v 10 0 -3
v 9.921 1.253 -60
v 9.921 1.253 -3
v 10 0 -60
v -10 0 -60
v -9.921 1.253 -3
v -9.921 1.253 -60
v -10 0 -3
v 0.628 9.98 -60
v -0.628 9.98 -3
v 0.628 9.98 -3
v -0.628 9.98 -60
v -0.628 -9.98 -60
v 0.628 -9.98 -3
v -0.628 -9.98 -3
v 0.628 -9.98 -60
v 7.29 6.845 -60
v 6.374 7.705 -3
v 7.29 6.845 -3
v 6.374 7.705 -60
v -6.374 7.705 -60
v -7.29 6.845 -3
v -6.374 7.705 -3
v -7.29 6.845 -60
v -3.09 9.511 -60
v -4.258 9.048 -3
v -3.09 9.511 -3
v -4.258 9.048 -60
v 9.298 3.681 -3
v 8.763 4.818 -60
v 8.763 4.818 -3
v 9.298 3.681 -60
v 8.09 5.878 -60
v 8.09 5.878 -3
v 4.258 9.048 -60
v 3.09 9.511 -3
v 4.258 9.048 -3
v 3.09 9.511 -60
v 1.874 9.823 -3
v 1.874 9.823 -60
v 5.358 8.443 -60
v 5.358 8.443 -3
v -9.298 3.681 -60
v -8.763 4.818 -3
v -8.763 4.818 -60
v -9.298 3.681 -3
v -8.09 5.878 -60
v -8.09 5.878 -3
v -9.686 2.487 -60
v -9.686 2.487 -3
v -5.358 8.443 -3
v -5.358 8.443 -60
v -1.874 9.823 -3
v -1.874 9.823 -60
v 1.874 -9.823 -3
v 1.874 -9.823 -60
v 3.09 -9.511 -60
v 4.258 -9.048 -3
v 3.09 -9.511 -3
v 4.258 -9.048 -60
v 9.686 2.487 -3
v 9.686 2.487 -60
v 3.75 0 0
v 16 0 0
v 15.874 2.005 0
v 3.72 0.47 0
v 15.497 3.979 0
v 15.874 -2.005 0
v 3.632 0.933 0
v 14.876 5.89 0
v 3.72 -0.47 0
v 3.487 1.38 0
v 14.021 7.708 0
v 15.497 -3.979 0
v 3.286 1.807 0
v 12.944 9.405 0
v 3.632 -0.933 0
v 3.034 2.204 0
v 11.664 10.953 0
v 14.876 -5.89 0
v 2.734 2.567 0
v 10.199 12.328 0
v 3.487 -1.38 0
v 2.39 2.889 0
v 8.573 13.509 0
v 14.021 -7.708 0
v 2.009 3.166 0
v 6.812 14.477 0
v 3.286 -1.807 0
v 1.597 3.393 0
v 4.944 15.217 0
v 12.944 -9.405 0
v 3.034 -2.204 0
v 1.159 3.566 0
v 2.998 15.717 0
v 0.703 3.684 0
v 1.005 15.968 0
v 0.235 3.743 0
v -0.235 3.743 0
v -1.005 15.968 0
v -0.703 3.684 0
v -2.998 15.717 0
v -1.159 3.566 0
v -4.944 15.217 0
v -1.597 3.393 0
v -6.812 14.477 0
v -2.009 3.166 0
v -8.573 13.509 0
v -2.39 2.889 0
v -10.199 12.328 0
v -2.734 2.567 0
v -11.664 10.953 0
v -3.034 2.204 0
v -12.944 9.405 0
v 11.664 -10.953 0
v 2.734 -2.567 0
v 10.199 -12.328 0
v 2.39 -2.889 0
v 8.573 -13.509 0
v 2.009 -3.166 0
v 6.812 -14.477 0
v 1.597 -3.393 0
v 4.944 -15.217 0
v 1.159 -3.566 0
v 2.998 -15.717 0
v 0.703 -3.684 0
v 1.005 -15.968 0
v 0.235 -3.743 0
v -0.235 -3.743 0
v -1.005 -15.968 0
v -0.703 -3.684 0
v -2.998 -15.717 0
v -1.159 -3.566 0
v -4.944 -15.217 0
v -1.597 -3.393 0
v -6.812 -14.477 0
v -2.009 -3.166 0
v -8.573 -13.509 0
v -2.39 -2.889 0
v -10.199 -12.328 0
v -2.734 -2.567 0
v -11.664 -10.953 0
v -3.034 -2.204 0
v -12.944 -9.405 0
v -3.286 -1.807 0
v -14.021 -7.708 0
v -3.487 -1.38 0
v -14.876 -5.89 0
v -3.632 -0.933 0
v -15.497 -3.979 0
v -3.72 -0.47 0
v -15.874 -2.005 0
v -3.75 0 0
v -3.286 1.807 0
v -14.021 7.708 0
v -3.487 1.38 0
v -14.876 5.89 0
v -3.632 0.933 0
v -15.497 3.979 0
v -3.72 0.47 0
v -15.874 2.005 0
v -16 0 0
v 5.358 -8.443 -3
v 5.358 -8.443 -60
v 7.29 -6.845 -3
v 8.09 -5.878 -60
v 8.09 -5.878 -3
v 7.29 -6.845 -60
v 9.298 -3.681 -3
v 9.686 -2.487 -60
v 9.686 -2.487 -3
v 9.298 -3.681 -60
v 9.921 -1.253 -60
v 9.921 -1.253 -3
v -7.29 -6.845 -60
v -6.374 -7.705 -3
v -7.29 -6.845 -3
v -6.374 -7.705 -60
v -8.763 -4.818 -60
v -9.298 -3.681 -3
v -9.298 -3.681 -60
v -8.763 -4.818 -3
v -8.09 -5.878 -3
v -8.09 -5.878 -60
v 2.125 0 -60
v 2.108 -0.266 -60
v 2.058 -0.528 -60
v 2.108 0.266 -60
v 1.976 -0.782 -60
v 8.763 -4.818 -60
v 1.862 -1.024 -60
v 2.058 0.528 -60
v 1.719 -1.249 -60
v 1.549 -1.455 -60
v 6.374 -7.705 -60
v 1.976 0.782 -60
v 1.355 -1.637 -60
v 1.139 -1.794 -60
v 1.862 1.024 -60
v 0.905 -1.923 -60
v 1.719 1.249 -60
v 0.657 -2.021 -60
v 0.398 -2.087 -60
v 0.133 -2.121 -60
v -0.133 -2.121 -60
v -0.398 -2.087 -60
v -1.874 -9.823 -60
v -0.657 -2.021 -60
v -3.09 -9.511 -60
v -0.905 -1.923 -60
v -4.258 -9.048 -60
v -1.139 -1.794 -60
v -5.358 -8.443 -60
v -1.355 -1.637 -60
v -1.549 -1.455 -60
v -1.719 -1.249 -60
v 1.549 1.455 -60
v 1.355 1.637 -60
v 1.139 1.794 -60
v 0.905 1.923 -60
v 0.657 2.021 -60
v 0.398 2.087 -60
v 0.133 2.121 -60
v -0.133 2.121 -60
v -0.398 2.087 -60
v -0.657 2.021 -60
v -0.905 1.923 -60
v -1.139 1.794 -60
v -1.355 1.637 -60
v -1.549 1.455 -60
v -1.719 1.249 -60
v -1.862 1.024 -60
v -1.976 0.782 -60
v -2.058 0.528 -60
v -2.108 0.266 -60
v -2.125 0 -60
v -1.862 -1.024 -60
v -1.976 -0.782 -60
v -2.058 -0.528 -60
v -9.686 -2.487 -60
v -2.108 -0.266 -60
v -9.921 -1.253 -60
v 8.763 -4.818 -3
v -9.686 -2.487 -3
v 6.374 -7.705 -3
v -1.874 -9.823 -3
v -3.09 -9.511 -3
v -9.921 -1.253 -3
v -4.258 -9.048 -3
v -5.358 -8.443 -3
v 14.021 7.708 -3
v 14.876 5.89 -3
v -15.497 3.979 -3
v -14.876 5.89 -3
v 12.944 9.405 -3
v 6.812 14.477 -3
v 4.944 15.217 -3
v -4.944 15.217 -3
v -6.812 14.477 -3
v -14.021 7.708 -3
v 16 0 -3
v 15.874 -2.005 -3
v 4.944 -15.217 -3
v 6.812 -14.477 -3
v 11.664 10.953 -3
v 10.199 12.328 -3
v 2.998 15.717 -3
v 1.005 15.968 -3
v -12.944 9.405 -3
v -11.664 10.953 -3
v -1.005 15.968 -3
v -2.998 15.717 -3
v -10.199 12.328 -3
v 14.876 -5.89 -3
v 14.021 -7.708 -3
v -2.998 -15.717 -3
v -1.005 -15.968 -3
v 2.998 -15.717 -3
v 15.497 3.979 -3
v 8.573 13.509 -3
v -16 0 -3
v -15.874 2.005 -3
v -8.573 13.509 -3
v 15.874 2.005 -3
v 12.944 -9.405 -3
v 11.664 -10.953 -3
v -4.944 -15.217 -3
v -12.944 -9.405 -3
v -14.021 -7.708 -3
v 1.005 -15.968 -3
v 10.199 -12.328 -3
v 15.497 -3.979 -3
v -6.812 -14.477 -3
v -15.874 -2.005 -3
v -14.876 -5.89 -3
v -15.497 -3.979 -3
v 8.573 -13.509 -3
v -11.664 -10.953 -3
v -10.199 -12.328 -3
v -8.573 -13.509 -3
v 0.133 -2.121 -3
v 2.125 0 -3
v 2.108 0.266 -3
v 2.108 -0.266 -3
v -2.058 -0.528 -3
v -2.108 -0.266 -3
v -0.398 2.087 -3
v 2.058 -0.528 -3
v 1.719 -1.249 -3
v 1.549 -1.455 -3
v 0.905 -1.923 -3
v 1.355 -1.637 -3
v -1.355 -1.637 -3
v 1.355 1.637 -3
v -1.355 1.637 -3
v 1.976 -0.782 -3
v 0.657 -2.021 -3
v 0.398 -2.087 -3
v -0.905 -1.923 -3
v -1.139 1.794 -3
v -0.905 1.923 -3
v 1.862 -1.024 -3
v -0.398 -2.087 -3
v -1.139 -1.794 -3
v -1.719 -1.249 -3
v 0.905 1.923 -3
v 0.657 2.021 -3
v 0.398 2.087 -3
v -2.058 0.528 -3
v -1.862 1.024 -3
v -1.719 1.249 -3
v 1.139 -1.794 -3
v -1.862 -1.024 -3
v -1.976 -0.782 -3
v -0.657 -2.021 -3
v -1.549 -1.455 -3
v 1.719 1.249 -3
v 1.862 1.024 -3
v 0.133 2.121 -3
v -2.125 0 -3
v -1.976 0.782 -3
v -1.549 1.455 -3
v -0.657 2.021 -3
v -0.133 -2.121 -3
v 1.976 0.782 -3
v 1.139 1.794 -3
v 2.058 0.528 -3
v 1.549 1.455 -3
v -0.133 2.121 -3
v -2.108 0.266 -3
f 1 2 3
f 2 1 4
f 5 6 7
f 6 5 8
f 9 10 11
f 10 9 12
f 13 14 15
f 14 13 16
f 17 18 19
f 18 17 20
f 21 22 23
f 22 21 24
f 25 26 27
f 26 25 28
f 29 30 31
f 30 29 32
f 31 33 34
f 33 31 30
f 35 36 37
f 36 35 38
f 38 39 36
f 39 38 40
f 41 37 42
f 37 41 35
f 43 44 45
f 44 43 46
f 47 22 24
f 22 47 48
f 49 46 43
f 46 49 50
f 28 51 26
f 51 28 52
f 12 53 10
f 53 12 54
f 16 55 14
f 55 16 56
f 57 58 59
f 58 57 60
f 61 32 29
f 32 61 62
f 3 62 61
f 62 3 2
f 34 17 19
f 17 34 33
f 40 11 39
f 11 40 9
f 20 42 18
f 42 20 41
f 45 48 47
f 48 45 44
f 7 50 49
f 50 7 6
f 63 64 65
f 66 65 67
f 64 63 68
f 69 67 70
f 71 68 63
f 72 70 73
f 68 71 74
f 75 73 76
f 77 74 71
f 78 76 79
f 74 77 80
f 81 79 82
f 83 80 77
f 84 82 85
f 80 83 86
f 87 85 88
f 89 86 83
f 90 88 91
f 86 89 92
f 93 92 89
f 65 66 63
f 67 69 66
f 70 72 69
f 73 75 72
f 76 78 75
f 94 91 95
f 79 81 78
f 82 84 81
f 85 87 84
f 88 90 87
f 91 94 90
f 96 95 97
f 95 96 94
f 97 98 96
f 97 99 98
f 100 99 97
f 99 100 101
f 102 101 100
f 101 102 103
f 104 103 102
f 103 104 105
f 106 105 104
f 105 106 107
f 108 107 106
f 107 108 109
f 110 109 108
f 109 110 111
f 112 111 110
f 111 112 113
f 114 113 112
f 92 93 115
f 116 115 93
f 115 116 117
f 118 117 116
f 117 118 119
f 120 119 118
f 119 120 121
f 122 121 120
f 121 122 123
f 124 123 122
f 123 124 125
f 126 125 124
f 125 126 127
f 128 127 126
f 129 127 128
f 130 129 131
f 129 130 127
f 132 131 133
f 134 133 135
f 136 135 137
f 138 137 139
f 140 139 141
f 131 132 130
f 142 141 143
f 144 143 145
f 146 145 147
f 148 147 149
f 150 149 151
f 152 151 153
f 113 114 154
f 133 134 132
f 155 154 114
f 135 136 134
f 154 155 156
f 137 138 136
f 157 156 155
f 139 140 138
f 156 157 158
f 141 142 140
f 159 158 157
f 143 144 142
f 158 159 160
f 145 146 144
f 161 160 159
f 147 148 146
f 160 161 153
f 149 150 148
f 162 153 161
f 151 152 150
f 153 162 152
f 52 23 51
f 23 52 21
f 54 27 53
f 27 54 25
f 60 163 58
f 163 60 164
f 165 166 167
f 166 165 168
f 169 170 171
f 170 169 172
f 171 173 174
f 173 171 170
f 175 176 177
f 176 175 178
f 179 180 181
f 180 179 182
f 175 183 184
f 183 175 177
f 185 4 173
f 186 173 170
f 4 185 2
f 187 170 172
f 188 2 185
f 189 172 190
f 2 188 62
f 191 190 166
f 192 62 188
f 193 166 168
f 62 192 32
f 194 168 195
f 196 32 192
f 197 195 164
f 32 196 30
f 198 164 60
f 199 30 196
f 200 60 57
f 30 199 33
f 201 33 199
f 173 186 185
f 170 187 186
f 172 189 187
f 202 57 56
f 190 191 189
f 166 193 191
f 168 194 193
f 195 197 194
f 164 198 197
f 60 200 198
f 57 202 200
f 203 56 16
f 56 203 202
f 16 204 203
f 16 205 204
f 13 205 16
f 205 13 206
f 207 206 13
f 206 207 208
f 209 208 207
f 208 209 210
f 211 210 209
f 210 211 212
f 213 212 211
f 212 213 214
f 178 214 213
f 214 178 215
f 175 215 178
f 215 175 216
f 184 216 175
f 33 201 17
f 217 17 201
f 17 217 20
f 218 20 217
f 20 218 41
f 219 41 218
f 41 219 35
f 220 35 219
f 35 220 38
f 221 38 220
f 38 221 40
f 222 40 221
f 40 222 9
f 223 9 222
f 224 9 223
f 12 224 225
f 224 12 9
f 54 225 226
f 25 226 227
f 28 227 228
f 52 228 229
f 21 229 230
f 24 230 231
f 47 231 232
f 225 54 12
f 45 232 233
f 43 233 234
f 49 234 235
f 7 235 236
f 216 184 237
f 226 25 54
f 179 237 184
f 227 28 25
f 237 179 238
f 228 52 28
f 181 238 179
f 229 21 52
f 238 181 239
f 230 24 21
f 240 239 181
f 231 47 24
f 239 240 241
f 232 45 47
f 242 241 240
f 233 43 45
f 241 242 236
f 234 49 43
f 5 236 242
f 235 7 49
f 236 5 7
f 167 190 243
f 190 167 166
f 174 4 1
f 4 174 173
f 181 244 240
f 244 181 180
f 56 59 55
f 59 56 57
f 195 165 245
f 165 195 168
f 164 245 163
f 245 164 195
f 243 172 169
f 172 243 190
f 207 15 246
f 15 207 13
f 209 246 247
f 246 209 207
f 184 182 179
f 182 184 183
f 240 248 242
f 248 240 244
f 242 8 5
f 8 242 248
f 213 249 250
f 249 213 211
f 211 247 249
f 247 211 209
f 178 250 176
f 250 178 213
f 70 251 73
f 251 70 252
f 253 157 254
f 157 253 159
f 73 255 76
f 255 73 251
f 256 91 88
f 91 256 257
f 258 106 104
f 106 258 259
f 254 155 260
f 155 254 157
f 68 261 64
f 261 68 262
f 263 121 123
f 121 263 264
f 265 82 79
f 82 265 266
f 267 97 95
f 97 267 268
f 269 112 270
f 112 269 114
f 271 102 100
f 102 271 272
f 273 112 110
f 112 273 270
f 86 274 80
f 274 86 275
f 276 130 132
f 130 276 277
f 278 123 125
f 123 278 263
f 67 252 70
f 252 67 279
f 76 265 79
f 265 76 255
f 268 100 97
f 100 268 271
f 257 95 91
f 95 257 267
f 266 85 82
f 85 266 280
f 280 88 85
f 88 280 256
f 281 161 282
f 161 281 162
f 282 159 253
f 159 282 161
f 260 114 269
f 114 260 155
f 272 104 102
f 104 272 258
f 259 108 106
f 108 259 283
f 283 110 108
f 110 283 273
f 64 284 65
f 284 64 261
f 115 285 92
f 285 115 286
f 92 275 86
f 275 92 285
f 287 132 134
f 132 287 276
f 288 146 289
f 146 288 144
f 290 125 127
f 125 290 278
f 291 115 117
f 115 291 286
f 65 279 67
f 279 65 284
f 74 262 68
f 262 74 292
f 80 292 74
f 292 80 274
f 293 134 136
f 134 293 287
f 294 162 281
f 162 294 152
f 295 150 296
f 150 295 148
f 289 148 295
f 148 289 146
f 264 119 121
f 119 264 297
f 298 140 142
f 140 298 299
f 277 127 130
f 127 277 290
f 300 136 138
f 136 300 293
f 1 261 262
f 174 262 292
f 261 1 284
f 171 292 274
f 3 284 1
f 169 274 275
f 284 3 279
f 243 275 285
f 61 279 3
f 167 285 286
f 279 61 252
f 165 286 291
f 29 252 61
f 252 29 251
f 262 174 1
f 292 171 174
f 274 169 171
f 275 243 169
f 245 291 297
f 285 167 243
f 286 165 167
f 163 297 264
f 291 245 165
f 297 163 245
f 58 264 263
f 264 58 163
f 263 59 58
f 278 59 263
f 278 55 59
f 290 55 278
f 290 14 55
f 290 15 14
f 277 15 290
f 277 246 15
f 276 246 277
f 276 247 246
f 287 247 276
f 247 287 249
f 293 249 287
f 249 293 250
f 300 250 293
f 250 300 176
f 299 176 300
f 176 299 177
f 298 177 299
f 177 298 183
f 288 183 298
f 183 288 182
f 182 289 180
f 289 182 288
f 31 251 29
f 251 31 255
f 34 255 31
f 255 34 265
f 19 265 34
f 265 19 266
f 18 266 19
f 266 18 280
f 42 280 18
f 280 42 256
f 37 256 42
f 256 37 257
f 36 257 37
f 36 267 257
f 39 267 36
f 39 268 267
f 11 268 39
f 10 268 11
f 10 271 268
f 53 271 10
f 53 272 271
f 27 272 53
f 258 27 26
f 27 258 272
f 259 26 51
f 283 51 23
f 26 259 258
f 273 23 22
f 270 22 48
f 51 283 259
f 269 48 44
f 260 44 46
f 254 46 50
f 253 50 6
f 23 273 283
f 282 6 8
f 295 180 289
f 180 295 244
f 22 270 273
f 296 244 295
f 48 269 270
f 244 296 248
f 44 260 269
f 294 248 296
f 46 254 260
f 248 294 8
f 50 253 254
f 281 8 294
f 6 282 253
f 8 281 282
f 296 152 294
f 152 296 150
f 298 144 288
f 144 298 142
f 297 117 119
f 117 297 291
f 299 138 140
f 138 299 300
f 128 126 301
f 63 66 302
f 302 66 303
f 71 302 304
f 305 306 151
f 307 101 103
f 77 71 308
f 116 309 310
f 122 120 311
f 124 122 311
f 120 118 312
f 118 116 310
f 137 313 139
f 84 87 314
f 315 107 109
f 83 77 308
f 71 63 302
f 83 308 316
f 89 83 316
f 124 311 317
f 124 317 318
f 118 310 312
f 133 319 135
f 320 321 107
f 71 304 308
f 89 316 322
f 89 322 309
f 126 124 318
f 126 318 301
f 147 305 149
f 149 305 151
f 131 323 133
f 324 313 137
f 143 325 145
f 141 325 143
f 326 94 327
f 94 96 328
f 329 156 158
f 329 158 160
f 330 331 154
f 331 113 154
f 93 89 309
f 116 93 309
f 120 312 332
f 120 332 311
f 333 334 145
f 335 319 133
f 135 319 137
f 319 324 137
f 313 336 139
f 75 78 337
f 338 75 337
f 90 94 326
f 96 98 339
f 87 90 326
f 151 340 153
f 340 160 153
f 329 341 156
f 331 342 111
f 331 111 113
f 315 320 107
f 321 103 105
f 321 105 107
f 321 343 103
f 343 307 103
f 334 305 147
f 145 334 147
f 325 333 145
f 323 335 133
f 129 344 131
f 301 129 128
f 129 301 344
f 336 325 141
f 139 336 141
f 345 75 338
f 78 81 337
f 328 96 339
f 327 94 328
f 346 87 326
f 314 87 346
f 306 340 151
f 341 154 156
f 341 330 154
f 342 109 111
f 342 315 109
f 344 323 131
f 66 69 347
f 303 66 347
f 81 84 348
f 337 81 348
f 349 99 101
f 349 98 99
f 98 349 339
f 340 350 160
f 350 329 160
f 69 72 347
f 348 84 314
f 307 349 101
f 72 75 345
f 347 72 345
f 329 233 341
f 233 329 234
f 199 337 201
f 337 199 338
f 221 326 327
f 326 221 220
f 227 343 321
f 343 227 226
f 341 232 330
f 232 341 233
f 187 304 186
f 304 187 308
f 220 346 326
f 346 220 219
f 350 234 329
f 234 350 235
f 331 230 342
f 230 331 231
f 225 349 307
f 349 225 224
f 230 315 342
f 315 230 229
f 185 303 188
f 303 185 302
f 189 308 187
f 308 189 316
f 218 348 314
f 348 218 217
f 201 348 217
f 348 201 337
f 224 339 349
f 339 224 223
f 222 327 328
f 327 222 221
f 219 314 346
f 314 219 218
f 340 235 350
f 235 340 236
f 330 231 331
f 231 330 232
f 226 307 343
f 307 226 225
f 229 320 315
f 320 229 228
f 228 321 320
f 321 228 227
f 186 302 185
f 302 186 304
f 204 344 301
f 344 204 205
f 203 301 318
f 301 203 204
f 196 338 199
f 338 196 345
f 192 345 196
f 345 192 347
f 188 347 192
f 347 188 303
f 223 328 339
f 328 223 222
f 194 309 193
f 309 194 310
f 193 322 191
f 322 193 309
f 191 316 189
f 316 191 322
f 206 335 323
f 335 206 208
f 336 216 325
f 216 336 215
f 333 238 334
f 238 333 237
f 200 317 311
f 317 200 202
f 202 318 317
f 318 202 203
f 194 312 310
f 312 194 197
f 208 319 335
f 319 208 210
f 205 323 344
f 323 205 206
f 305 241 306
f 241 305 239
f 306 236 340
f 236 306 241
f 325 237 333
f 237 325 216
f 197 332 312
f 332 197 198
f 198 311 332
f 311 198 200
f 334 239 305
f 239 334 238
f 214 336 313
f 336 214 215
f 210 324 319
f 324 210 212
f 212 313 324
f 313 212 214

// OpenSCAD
$fn = 50;


difference() {
	union() {
		translate(v = [0, 0, -60.0000000000]) {
			cylinder(h = 60, r = 10.0000000000);
		}
		translate(v = [0, 0, -3.0000000000]) {
			cylinder(h = 3, r = 16.0000000000);
		}
	}
	union() {
		translate(v = [0, 0, 0]) {
			rotate(a = [0, 0, 0]) {
				difference() {
					union() {
						#translate(v = [0, 0, -60.0000000000]) {
							cylinder(h = 60, r = 2.0000000000);
						}
						#translate(v = [0, 0, -3]) {
							cylinder(h = 3, r = 10.0000000000, r1 = 2.1250000000, r2 = 3.7500000000);
						}
						#translate(v = [0, 0, -60.0000000000]) {
							cylinder(h = 60, r = 2.1250000000);
						}
						#translate(v = [0, 0, -60.0000000000]) {
							cylinder(h = 60, r = 2.0000000000);
						}
					}
					union();
				}
			}
		}
	}
}
